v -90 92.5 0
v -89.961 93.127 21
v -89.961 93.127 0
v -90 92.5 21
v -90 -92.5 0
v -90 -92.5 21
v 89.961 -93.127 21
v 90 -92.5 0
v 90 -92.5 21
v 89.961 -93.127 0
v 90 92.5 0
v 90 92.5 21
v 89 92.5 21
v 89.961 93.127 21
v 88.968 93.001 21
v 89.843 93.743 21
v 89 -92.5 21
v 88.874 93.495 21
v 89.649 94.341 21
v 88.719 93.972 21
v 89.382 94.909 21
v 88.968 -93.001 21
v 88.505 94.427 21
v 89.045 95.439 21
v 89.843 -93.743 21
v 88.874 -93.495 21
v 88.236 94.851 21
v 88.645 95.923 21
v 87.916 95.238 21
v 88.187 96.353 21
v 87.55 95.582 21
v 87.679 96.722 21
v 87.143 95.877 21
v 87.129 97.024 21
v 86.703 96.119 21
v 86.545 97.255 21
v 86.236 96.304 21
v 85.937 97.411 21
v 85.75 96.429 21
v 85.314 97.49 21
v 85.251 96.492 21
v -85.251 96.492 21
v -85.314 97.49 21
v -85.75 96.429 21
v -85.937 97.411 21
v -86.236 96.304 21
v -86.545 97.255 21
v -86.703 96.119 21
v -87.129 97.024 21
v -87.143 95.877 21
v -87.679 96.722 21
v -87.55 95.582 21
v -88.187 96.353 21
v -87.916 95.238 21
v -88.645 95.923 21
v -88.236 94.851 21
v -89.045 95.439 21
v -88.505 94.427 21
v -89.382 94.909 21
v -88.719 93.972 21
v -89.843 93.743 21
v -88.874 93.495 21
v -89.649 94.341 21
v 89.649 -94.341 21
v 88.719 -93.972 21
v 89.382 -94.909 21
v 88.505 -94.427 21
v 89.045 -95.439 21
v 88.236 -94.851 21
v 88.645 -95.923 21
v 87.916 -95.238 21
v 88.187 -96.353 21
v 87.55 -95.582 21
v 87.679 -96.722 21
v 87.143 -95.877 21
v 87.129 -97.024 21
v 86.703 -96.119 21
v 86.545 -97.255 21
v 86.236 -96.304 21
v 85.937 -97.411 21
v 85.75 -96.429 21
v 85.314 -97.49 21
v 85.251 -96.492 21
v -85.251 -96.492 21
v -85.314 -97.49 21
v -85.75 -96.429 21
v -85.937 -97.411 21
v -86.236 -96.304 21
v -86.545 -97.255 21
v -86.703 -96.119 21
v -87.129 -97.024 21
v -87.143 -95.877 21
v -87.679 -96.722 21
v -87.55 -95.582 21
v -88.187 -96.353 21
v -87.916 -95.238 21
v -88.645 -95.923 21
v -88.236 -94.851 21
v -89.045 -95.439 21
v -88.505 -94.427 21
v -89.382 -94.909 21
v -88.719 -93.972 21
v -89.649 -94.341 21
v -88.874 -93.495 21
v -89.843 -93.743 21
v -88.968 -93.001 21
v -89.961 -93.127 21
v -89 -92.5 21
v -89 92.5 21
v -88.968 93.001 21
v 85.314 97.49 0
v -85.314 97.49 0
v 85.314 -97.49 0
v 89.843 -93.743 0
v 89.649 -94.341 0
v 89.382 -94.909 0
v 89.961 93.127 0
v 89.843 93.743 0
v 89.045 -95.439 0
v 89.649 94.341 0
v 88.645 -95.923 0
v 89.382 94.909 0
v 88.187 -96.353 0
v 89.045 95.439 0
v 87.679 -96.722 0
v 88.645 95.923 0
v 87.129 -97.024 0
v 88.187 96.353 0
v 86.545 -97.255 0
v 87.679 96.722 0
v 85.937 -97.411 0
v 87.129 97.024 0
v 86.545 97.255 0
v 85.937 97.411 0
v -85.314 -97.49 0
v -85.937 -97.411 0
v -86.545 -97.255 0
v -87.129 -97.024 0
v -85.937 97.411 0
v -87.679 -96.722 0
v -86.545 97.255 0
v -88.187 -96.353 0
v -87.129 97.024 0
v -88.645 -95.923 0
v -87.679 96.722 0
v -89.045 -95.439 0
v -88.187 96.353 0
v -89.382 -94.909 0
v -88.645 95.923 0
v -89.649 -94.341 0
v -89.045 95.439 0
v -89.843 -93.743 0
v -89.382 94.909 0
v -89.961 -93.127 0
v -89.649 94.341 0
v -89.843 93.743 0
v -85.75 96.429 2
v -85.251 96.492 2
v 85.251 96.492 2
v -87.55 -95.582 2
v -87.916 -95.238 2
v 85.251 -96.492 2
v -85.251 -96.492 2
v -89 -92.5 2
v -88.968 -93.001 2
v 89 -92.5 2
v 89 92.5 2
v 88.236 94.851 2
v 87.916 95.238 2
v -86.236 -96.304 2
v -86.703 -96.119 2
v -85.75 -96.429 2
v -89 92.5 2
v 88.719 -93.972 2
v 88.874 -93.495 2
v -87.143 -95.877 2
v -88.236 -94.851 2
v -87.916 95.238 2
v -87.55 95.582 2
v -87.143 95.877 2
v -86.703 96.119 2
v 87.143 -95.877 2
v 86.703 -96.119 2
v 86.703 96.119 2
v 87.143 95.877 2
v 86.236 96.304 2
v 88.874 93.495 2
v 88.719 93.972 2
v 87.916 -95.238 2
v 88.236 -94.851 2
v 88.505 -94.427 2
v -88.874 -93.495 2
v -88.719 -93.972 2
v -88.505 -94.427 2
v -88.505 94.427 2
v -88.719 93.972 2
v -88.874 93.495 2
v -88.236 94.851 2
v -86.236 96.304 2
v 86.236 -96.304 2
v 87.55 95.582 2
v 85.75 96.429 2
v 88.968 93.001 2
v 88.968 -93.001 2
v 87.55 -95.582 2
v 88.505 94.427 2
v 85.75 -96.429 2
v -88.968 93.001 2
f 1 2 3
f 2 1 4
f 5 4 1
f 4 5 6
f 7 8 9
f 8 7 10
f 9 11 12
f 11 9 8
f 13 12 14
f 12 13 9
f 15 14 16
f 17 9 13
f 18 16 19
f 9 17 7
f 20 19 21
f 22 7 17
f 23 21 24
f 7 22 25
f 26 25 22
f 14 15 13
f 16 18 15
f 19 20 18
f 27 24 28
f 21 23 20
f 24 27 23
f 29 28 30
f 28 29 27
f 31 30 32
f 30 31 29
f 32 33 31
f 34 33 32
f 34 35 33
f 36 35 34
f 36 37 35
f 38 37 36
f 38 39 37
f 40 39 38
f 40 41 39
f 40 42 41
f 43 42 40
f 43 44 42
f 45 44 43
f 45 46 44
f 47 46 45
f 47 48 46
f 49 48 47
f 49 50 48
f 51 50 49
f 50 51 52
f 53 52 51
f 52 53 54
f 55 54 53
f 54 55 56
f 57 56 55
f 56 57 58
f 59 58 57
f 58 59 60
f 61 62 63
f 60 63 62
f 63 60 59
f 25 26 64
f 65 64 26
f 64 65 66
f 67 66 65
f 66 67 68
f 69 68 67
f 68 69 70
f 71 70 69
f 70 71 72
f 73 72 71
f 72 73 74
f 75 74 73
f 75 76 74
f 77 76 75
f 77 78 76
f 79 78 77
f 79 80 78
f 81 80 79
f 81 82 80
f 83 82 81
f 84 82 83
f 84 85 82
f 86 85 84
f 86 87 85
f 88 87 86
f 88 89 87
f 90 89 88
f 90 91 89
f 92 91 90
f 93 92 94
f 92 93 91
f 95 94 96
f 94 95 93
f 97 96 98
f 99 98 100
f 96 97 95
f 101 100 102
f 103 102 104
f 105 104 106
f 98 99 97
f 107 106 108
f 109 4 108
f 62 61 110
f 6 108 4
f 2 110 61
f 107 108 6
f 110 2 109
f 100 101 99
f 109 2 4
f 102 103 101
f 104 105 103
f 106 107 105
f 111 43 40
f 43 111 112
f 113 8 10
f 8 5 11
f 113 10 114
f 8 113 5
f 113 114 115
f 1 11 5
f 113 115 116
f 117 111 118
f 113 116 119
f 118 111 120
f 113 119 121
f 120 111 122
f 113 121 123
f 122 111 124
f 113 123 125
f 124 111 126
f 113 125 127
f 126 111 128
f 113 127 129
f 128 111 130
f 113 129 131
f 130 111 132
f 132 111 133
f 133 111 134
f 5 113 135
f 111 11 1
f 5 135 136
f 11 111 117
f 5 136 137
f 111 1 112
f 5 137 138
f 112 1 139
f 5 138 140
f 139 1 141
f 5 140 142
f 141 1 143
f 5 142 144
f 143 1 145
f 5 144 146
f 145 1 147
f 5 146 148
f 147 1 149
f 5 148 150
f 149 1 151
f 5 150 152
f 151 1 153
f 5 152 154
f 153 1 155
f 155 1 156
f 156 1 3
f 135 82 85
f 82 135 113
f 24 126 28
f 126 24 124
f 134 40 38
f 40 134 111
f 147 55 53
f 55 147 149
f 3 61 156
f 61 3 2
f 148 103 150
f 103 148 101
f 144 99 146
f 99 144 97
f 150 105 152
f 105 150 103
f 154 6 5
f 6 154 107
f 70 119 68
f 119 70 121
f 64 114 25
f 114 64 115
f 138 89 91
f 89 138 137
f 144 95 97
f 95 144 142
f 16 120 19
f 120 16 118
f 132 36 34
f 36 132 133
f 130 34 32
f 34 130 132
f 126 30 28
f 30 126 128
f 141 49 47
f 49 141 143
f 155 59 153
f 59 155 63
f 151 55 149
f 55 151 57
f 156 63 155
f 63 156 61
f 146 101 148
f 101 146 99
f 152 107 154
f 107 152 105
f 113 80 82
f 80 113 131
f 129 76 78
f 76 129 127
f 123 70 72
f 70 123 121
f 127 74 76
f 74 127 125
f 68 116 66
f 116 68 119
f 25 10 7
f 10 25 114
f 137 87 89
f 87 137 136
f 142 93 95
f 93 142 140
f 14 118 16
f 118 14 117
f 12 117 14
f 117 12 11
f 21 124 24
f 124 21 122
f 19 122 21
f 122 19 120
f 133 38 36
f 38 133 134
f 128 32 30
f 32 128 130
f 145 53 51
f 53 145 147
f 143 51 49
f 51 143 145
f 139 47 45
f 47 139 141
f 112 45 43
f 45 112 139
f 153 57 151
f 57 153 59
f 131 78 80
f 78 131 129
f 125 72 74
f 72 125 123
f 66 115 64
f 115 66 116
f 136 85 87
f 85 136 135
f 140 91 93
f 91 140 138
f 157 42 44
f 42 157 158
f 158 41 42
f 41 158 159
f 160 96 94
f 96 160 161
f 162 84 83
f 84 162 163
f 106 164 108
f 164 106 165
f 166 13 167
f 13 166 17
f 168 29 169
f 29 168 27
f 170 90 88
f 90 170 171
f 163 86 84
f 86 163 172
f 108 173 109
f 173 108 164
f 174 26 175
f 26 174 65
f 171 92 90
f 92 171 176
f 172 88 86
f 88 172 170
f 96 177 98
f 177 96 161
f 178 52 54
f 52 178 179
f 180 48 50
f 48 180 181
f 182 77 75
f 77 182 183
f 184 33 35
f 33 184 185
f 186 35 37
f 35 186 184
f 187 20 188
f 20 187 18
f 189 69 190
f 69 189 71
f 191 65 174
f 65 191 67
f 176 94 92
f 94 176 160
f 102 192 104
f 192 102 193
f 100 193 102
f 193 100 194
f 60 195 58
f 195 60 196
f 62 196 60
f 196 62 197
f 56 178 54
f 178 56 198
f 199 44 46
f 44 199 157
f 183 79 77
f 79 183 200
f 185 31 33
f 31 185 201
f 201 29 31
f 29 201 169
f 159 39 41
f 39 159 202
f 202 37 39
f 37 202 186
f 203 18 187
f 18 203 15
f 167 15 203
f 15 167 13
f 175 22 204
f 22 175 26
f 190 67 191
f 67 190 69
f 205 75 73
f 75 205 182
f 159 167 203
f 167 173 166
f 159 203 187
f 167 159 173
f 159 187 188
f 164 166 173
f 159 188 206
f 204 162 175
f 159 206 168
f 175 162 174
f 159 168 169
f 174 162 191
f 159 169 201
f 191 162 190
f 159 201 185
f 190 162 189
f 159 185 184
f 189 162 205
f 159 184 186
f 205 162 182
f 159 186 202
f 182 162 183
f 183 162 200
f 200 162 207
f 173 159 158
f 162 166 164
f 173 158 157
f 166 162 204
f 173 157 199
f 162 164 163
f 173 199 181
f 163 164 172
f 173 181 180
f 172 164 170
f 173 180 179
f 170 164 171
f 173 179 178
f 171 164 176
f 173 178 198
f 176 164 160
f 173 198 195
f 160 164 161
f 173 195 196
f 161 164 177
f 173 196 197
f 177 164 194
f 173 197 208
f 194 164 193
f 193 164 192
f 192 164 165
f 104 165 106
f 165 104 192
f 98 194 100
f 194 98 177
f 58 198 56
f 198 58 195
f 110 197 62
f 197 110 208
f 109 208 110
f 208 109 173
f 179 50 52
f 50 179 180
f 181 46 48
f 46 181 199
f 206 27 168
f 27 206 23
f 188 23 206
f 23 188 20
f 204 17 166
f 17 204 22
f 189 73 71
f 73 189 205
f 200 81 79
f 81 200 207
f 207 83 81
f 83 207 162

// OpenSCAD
$fn = 50;


difference() {
	union() {
		hull() {
			translate(v = [-85.0000000000, 92.5000000000, 0]) {
				cylinder(h = 21, r = 5);
			}
			translate(v = [85.0000000000, 92.5000000000, 0]) {
				cylinder(h = 21, r = 5);
			}
			translate(v = [-85.0000000000, -92.5000000000, 0]) {
				cylinder(h = 21, r = 5);
			}
			translate(v = [85.0000000000, -92.5000000000, 0]) {
				cylinder(h = 21, r = 5);
			}
		}
	}
	union() {
		translate(v = [0, 0, 2]) {
			hull() {
				translate(v = [-85.0000000000, 92.5000000000, 0]) {
					cylinder(h = 19, r = 4);
				}
				translate(v = [85.0000000000, 92.5000000000, 0]) {
					cylinder(h = 19, r = 4);
				}
				translate(v = [-85.0000000000, -92.5000000000, 0]) {
					cylinder(h = 19, r = 4);
				}
				translate(v = [85.0000000000, -92.5000000000, 0]) {
					cylinder(h = 19, r = 4);
				}
			}
		}
	}
}
